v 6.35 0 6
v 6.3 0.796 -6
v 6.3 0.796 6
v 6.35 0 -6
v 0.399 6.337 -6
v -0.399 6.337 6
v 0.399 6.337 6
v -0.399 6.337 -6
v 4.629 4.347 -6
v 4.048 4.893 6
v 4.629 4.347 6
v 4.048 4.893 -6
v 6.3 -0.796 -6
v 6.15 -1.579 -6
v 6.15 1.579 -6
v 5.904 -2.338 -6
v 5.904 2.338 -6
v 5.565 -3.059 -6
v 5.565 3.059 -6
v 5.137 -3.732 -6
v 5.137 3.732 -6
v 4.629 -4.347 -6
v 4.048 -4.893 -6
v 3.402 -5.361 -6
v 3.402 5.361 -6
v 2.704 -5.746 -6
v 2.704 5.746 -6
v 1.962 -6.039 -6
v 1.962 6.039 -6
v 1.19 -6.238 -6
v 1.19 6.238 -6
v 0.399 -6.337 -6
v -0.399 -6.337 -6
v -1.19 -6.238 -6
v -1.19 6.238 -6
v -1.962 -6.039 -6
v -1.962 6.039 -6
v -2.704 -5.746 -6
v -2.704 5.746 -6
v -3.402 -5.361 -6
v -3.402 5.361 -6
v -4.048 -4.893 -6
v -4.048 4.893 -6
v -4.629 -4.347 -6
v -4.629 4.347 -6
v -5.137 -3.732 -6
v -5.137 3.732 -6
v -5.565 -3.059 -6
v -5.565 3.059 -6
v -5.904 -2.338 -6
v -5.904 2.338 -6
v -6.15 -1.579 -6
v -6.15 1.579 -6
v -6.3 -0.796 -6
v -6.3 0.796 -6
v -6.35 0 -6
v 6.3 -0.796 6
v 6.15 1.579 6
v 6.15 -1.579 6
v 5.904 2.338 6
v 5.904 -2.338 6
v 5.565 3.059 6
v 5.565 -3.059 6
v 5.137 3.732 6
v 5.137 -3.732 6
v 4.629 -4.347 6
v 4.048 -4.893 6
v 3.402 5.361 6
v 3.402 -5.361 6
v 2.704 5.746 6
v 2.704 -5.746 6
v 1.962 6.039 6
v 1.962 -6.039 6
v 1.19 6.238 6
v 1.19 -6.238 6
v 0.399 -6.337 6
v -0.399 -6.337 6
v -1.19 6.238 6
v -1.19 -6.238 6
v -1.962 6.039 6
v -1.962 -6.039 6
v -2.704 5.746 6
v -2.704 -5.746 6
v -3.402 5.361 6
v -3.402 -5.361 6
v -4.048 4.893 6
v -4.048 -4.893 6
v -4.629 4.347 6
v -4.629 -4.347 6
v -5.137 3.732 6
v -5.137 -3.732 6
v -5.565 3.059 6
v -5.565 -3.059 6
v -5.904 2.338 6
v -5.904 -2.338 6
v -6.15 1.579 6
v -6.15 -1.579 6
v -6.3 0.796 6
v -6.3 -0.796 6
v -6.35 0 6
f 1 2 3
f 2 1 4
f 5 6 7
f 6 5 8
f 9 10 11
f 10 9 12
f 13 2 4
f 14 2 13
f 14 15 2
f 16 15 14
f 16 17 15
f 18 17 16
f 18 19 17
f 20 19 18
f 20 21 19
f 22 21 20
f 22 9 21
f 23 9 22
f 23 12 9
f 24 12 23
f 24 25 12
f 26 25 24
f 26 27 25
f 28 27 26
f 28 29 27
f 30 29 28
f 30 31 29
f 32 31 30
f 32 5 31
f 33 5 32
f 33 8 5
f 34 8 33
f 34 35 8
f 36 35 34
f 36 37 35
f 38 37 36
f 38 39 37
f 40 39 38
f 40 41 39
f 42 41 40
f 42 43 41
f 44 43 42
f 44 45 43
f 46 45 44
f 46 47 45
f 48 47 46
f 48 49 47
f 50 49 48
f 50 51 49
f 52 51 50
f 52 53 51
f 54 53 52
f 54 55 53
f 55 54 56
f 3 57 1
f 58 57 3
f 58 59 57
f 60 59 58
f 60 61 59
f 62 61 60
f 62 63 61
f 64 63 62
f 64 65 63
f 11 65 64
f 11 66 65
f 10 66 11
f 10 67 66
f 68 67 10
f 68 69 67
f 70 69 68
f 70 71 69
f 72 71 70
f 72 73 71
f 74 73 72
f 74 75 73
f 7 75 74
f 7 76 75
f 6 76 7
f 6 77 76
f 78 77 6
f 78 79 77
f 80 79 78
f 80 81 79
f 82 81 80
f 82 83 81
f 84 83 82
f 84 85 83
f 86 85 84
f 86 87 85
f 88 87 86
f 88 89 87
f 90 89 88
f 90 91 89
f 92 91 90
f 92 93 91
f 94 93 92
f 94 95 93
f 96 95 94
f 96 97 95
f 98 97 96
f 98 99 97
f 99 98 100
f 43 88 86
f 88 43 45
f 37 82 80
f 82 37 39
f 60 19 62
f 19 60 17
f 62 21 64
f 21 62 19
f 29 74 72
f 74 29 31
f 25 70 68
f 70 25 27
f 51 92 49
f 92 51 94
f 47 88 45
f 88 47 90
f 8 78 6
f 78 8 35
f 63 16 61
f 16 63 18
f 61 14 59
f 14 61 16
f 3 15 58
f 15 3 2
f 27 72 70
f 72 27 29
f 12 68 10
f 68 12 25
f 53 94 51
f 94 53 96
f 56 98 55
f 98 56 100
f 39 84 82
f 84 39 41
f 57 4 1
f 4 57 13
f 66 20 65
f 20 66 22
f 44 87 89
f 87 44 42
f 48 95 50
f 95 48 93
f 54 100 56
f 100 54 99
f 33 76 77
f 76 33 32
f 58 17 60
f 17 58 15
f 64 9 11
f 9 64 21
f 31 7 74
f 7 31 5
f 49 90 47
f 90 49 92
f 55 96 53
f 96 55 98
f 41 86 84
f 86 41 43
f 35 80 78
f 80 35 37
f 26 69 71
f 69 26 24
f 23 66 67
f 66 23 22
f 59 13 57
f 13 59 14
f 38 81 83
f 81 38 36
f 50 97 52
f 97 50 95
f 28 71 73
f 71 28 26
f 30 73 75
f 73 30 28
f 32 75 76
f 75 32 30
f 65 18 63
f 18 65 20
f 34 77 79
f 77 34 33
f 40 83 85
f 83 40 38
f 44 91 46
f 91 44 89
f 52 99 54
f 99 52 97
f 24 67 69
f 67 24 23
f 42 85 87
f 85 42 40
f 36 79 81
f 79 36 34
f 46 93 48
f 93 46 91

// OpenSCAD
$fn = 50;


difference() {
	union() {
		translate(v = [0, 0, -6.0000000000]) {
			cylinder(h = 12, r = 6.3500000000);
		}
	}
	union() {
		translate(v = [0, 0, -100.0000000000]) {
			cylinder(h = 200, r = 0);
		}
	}
}
